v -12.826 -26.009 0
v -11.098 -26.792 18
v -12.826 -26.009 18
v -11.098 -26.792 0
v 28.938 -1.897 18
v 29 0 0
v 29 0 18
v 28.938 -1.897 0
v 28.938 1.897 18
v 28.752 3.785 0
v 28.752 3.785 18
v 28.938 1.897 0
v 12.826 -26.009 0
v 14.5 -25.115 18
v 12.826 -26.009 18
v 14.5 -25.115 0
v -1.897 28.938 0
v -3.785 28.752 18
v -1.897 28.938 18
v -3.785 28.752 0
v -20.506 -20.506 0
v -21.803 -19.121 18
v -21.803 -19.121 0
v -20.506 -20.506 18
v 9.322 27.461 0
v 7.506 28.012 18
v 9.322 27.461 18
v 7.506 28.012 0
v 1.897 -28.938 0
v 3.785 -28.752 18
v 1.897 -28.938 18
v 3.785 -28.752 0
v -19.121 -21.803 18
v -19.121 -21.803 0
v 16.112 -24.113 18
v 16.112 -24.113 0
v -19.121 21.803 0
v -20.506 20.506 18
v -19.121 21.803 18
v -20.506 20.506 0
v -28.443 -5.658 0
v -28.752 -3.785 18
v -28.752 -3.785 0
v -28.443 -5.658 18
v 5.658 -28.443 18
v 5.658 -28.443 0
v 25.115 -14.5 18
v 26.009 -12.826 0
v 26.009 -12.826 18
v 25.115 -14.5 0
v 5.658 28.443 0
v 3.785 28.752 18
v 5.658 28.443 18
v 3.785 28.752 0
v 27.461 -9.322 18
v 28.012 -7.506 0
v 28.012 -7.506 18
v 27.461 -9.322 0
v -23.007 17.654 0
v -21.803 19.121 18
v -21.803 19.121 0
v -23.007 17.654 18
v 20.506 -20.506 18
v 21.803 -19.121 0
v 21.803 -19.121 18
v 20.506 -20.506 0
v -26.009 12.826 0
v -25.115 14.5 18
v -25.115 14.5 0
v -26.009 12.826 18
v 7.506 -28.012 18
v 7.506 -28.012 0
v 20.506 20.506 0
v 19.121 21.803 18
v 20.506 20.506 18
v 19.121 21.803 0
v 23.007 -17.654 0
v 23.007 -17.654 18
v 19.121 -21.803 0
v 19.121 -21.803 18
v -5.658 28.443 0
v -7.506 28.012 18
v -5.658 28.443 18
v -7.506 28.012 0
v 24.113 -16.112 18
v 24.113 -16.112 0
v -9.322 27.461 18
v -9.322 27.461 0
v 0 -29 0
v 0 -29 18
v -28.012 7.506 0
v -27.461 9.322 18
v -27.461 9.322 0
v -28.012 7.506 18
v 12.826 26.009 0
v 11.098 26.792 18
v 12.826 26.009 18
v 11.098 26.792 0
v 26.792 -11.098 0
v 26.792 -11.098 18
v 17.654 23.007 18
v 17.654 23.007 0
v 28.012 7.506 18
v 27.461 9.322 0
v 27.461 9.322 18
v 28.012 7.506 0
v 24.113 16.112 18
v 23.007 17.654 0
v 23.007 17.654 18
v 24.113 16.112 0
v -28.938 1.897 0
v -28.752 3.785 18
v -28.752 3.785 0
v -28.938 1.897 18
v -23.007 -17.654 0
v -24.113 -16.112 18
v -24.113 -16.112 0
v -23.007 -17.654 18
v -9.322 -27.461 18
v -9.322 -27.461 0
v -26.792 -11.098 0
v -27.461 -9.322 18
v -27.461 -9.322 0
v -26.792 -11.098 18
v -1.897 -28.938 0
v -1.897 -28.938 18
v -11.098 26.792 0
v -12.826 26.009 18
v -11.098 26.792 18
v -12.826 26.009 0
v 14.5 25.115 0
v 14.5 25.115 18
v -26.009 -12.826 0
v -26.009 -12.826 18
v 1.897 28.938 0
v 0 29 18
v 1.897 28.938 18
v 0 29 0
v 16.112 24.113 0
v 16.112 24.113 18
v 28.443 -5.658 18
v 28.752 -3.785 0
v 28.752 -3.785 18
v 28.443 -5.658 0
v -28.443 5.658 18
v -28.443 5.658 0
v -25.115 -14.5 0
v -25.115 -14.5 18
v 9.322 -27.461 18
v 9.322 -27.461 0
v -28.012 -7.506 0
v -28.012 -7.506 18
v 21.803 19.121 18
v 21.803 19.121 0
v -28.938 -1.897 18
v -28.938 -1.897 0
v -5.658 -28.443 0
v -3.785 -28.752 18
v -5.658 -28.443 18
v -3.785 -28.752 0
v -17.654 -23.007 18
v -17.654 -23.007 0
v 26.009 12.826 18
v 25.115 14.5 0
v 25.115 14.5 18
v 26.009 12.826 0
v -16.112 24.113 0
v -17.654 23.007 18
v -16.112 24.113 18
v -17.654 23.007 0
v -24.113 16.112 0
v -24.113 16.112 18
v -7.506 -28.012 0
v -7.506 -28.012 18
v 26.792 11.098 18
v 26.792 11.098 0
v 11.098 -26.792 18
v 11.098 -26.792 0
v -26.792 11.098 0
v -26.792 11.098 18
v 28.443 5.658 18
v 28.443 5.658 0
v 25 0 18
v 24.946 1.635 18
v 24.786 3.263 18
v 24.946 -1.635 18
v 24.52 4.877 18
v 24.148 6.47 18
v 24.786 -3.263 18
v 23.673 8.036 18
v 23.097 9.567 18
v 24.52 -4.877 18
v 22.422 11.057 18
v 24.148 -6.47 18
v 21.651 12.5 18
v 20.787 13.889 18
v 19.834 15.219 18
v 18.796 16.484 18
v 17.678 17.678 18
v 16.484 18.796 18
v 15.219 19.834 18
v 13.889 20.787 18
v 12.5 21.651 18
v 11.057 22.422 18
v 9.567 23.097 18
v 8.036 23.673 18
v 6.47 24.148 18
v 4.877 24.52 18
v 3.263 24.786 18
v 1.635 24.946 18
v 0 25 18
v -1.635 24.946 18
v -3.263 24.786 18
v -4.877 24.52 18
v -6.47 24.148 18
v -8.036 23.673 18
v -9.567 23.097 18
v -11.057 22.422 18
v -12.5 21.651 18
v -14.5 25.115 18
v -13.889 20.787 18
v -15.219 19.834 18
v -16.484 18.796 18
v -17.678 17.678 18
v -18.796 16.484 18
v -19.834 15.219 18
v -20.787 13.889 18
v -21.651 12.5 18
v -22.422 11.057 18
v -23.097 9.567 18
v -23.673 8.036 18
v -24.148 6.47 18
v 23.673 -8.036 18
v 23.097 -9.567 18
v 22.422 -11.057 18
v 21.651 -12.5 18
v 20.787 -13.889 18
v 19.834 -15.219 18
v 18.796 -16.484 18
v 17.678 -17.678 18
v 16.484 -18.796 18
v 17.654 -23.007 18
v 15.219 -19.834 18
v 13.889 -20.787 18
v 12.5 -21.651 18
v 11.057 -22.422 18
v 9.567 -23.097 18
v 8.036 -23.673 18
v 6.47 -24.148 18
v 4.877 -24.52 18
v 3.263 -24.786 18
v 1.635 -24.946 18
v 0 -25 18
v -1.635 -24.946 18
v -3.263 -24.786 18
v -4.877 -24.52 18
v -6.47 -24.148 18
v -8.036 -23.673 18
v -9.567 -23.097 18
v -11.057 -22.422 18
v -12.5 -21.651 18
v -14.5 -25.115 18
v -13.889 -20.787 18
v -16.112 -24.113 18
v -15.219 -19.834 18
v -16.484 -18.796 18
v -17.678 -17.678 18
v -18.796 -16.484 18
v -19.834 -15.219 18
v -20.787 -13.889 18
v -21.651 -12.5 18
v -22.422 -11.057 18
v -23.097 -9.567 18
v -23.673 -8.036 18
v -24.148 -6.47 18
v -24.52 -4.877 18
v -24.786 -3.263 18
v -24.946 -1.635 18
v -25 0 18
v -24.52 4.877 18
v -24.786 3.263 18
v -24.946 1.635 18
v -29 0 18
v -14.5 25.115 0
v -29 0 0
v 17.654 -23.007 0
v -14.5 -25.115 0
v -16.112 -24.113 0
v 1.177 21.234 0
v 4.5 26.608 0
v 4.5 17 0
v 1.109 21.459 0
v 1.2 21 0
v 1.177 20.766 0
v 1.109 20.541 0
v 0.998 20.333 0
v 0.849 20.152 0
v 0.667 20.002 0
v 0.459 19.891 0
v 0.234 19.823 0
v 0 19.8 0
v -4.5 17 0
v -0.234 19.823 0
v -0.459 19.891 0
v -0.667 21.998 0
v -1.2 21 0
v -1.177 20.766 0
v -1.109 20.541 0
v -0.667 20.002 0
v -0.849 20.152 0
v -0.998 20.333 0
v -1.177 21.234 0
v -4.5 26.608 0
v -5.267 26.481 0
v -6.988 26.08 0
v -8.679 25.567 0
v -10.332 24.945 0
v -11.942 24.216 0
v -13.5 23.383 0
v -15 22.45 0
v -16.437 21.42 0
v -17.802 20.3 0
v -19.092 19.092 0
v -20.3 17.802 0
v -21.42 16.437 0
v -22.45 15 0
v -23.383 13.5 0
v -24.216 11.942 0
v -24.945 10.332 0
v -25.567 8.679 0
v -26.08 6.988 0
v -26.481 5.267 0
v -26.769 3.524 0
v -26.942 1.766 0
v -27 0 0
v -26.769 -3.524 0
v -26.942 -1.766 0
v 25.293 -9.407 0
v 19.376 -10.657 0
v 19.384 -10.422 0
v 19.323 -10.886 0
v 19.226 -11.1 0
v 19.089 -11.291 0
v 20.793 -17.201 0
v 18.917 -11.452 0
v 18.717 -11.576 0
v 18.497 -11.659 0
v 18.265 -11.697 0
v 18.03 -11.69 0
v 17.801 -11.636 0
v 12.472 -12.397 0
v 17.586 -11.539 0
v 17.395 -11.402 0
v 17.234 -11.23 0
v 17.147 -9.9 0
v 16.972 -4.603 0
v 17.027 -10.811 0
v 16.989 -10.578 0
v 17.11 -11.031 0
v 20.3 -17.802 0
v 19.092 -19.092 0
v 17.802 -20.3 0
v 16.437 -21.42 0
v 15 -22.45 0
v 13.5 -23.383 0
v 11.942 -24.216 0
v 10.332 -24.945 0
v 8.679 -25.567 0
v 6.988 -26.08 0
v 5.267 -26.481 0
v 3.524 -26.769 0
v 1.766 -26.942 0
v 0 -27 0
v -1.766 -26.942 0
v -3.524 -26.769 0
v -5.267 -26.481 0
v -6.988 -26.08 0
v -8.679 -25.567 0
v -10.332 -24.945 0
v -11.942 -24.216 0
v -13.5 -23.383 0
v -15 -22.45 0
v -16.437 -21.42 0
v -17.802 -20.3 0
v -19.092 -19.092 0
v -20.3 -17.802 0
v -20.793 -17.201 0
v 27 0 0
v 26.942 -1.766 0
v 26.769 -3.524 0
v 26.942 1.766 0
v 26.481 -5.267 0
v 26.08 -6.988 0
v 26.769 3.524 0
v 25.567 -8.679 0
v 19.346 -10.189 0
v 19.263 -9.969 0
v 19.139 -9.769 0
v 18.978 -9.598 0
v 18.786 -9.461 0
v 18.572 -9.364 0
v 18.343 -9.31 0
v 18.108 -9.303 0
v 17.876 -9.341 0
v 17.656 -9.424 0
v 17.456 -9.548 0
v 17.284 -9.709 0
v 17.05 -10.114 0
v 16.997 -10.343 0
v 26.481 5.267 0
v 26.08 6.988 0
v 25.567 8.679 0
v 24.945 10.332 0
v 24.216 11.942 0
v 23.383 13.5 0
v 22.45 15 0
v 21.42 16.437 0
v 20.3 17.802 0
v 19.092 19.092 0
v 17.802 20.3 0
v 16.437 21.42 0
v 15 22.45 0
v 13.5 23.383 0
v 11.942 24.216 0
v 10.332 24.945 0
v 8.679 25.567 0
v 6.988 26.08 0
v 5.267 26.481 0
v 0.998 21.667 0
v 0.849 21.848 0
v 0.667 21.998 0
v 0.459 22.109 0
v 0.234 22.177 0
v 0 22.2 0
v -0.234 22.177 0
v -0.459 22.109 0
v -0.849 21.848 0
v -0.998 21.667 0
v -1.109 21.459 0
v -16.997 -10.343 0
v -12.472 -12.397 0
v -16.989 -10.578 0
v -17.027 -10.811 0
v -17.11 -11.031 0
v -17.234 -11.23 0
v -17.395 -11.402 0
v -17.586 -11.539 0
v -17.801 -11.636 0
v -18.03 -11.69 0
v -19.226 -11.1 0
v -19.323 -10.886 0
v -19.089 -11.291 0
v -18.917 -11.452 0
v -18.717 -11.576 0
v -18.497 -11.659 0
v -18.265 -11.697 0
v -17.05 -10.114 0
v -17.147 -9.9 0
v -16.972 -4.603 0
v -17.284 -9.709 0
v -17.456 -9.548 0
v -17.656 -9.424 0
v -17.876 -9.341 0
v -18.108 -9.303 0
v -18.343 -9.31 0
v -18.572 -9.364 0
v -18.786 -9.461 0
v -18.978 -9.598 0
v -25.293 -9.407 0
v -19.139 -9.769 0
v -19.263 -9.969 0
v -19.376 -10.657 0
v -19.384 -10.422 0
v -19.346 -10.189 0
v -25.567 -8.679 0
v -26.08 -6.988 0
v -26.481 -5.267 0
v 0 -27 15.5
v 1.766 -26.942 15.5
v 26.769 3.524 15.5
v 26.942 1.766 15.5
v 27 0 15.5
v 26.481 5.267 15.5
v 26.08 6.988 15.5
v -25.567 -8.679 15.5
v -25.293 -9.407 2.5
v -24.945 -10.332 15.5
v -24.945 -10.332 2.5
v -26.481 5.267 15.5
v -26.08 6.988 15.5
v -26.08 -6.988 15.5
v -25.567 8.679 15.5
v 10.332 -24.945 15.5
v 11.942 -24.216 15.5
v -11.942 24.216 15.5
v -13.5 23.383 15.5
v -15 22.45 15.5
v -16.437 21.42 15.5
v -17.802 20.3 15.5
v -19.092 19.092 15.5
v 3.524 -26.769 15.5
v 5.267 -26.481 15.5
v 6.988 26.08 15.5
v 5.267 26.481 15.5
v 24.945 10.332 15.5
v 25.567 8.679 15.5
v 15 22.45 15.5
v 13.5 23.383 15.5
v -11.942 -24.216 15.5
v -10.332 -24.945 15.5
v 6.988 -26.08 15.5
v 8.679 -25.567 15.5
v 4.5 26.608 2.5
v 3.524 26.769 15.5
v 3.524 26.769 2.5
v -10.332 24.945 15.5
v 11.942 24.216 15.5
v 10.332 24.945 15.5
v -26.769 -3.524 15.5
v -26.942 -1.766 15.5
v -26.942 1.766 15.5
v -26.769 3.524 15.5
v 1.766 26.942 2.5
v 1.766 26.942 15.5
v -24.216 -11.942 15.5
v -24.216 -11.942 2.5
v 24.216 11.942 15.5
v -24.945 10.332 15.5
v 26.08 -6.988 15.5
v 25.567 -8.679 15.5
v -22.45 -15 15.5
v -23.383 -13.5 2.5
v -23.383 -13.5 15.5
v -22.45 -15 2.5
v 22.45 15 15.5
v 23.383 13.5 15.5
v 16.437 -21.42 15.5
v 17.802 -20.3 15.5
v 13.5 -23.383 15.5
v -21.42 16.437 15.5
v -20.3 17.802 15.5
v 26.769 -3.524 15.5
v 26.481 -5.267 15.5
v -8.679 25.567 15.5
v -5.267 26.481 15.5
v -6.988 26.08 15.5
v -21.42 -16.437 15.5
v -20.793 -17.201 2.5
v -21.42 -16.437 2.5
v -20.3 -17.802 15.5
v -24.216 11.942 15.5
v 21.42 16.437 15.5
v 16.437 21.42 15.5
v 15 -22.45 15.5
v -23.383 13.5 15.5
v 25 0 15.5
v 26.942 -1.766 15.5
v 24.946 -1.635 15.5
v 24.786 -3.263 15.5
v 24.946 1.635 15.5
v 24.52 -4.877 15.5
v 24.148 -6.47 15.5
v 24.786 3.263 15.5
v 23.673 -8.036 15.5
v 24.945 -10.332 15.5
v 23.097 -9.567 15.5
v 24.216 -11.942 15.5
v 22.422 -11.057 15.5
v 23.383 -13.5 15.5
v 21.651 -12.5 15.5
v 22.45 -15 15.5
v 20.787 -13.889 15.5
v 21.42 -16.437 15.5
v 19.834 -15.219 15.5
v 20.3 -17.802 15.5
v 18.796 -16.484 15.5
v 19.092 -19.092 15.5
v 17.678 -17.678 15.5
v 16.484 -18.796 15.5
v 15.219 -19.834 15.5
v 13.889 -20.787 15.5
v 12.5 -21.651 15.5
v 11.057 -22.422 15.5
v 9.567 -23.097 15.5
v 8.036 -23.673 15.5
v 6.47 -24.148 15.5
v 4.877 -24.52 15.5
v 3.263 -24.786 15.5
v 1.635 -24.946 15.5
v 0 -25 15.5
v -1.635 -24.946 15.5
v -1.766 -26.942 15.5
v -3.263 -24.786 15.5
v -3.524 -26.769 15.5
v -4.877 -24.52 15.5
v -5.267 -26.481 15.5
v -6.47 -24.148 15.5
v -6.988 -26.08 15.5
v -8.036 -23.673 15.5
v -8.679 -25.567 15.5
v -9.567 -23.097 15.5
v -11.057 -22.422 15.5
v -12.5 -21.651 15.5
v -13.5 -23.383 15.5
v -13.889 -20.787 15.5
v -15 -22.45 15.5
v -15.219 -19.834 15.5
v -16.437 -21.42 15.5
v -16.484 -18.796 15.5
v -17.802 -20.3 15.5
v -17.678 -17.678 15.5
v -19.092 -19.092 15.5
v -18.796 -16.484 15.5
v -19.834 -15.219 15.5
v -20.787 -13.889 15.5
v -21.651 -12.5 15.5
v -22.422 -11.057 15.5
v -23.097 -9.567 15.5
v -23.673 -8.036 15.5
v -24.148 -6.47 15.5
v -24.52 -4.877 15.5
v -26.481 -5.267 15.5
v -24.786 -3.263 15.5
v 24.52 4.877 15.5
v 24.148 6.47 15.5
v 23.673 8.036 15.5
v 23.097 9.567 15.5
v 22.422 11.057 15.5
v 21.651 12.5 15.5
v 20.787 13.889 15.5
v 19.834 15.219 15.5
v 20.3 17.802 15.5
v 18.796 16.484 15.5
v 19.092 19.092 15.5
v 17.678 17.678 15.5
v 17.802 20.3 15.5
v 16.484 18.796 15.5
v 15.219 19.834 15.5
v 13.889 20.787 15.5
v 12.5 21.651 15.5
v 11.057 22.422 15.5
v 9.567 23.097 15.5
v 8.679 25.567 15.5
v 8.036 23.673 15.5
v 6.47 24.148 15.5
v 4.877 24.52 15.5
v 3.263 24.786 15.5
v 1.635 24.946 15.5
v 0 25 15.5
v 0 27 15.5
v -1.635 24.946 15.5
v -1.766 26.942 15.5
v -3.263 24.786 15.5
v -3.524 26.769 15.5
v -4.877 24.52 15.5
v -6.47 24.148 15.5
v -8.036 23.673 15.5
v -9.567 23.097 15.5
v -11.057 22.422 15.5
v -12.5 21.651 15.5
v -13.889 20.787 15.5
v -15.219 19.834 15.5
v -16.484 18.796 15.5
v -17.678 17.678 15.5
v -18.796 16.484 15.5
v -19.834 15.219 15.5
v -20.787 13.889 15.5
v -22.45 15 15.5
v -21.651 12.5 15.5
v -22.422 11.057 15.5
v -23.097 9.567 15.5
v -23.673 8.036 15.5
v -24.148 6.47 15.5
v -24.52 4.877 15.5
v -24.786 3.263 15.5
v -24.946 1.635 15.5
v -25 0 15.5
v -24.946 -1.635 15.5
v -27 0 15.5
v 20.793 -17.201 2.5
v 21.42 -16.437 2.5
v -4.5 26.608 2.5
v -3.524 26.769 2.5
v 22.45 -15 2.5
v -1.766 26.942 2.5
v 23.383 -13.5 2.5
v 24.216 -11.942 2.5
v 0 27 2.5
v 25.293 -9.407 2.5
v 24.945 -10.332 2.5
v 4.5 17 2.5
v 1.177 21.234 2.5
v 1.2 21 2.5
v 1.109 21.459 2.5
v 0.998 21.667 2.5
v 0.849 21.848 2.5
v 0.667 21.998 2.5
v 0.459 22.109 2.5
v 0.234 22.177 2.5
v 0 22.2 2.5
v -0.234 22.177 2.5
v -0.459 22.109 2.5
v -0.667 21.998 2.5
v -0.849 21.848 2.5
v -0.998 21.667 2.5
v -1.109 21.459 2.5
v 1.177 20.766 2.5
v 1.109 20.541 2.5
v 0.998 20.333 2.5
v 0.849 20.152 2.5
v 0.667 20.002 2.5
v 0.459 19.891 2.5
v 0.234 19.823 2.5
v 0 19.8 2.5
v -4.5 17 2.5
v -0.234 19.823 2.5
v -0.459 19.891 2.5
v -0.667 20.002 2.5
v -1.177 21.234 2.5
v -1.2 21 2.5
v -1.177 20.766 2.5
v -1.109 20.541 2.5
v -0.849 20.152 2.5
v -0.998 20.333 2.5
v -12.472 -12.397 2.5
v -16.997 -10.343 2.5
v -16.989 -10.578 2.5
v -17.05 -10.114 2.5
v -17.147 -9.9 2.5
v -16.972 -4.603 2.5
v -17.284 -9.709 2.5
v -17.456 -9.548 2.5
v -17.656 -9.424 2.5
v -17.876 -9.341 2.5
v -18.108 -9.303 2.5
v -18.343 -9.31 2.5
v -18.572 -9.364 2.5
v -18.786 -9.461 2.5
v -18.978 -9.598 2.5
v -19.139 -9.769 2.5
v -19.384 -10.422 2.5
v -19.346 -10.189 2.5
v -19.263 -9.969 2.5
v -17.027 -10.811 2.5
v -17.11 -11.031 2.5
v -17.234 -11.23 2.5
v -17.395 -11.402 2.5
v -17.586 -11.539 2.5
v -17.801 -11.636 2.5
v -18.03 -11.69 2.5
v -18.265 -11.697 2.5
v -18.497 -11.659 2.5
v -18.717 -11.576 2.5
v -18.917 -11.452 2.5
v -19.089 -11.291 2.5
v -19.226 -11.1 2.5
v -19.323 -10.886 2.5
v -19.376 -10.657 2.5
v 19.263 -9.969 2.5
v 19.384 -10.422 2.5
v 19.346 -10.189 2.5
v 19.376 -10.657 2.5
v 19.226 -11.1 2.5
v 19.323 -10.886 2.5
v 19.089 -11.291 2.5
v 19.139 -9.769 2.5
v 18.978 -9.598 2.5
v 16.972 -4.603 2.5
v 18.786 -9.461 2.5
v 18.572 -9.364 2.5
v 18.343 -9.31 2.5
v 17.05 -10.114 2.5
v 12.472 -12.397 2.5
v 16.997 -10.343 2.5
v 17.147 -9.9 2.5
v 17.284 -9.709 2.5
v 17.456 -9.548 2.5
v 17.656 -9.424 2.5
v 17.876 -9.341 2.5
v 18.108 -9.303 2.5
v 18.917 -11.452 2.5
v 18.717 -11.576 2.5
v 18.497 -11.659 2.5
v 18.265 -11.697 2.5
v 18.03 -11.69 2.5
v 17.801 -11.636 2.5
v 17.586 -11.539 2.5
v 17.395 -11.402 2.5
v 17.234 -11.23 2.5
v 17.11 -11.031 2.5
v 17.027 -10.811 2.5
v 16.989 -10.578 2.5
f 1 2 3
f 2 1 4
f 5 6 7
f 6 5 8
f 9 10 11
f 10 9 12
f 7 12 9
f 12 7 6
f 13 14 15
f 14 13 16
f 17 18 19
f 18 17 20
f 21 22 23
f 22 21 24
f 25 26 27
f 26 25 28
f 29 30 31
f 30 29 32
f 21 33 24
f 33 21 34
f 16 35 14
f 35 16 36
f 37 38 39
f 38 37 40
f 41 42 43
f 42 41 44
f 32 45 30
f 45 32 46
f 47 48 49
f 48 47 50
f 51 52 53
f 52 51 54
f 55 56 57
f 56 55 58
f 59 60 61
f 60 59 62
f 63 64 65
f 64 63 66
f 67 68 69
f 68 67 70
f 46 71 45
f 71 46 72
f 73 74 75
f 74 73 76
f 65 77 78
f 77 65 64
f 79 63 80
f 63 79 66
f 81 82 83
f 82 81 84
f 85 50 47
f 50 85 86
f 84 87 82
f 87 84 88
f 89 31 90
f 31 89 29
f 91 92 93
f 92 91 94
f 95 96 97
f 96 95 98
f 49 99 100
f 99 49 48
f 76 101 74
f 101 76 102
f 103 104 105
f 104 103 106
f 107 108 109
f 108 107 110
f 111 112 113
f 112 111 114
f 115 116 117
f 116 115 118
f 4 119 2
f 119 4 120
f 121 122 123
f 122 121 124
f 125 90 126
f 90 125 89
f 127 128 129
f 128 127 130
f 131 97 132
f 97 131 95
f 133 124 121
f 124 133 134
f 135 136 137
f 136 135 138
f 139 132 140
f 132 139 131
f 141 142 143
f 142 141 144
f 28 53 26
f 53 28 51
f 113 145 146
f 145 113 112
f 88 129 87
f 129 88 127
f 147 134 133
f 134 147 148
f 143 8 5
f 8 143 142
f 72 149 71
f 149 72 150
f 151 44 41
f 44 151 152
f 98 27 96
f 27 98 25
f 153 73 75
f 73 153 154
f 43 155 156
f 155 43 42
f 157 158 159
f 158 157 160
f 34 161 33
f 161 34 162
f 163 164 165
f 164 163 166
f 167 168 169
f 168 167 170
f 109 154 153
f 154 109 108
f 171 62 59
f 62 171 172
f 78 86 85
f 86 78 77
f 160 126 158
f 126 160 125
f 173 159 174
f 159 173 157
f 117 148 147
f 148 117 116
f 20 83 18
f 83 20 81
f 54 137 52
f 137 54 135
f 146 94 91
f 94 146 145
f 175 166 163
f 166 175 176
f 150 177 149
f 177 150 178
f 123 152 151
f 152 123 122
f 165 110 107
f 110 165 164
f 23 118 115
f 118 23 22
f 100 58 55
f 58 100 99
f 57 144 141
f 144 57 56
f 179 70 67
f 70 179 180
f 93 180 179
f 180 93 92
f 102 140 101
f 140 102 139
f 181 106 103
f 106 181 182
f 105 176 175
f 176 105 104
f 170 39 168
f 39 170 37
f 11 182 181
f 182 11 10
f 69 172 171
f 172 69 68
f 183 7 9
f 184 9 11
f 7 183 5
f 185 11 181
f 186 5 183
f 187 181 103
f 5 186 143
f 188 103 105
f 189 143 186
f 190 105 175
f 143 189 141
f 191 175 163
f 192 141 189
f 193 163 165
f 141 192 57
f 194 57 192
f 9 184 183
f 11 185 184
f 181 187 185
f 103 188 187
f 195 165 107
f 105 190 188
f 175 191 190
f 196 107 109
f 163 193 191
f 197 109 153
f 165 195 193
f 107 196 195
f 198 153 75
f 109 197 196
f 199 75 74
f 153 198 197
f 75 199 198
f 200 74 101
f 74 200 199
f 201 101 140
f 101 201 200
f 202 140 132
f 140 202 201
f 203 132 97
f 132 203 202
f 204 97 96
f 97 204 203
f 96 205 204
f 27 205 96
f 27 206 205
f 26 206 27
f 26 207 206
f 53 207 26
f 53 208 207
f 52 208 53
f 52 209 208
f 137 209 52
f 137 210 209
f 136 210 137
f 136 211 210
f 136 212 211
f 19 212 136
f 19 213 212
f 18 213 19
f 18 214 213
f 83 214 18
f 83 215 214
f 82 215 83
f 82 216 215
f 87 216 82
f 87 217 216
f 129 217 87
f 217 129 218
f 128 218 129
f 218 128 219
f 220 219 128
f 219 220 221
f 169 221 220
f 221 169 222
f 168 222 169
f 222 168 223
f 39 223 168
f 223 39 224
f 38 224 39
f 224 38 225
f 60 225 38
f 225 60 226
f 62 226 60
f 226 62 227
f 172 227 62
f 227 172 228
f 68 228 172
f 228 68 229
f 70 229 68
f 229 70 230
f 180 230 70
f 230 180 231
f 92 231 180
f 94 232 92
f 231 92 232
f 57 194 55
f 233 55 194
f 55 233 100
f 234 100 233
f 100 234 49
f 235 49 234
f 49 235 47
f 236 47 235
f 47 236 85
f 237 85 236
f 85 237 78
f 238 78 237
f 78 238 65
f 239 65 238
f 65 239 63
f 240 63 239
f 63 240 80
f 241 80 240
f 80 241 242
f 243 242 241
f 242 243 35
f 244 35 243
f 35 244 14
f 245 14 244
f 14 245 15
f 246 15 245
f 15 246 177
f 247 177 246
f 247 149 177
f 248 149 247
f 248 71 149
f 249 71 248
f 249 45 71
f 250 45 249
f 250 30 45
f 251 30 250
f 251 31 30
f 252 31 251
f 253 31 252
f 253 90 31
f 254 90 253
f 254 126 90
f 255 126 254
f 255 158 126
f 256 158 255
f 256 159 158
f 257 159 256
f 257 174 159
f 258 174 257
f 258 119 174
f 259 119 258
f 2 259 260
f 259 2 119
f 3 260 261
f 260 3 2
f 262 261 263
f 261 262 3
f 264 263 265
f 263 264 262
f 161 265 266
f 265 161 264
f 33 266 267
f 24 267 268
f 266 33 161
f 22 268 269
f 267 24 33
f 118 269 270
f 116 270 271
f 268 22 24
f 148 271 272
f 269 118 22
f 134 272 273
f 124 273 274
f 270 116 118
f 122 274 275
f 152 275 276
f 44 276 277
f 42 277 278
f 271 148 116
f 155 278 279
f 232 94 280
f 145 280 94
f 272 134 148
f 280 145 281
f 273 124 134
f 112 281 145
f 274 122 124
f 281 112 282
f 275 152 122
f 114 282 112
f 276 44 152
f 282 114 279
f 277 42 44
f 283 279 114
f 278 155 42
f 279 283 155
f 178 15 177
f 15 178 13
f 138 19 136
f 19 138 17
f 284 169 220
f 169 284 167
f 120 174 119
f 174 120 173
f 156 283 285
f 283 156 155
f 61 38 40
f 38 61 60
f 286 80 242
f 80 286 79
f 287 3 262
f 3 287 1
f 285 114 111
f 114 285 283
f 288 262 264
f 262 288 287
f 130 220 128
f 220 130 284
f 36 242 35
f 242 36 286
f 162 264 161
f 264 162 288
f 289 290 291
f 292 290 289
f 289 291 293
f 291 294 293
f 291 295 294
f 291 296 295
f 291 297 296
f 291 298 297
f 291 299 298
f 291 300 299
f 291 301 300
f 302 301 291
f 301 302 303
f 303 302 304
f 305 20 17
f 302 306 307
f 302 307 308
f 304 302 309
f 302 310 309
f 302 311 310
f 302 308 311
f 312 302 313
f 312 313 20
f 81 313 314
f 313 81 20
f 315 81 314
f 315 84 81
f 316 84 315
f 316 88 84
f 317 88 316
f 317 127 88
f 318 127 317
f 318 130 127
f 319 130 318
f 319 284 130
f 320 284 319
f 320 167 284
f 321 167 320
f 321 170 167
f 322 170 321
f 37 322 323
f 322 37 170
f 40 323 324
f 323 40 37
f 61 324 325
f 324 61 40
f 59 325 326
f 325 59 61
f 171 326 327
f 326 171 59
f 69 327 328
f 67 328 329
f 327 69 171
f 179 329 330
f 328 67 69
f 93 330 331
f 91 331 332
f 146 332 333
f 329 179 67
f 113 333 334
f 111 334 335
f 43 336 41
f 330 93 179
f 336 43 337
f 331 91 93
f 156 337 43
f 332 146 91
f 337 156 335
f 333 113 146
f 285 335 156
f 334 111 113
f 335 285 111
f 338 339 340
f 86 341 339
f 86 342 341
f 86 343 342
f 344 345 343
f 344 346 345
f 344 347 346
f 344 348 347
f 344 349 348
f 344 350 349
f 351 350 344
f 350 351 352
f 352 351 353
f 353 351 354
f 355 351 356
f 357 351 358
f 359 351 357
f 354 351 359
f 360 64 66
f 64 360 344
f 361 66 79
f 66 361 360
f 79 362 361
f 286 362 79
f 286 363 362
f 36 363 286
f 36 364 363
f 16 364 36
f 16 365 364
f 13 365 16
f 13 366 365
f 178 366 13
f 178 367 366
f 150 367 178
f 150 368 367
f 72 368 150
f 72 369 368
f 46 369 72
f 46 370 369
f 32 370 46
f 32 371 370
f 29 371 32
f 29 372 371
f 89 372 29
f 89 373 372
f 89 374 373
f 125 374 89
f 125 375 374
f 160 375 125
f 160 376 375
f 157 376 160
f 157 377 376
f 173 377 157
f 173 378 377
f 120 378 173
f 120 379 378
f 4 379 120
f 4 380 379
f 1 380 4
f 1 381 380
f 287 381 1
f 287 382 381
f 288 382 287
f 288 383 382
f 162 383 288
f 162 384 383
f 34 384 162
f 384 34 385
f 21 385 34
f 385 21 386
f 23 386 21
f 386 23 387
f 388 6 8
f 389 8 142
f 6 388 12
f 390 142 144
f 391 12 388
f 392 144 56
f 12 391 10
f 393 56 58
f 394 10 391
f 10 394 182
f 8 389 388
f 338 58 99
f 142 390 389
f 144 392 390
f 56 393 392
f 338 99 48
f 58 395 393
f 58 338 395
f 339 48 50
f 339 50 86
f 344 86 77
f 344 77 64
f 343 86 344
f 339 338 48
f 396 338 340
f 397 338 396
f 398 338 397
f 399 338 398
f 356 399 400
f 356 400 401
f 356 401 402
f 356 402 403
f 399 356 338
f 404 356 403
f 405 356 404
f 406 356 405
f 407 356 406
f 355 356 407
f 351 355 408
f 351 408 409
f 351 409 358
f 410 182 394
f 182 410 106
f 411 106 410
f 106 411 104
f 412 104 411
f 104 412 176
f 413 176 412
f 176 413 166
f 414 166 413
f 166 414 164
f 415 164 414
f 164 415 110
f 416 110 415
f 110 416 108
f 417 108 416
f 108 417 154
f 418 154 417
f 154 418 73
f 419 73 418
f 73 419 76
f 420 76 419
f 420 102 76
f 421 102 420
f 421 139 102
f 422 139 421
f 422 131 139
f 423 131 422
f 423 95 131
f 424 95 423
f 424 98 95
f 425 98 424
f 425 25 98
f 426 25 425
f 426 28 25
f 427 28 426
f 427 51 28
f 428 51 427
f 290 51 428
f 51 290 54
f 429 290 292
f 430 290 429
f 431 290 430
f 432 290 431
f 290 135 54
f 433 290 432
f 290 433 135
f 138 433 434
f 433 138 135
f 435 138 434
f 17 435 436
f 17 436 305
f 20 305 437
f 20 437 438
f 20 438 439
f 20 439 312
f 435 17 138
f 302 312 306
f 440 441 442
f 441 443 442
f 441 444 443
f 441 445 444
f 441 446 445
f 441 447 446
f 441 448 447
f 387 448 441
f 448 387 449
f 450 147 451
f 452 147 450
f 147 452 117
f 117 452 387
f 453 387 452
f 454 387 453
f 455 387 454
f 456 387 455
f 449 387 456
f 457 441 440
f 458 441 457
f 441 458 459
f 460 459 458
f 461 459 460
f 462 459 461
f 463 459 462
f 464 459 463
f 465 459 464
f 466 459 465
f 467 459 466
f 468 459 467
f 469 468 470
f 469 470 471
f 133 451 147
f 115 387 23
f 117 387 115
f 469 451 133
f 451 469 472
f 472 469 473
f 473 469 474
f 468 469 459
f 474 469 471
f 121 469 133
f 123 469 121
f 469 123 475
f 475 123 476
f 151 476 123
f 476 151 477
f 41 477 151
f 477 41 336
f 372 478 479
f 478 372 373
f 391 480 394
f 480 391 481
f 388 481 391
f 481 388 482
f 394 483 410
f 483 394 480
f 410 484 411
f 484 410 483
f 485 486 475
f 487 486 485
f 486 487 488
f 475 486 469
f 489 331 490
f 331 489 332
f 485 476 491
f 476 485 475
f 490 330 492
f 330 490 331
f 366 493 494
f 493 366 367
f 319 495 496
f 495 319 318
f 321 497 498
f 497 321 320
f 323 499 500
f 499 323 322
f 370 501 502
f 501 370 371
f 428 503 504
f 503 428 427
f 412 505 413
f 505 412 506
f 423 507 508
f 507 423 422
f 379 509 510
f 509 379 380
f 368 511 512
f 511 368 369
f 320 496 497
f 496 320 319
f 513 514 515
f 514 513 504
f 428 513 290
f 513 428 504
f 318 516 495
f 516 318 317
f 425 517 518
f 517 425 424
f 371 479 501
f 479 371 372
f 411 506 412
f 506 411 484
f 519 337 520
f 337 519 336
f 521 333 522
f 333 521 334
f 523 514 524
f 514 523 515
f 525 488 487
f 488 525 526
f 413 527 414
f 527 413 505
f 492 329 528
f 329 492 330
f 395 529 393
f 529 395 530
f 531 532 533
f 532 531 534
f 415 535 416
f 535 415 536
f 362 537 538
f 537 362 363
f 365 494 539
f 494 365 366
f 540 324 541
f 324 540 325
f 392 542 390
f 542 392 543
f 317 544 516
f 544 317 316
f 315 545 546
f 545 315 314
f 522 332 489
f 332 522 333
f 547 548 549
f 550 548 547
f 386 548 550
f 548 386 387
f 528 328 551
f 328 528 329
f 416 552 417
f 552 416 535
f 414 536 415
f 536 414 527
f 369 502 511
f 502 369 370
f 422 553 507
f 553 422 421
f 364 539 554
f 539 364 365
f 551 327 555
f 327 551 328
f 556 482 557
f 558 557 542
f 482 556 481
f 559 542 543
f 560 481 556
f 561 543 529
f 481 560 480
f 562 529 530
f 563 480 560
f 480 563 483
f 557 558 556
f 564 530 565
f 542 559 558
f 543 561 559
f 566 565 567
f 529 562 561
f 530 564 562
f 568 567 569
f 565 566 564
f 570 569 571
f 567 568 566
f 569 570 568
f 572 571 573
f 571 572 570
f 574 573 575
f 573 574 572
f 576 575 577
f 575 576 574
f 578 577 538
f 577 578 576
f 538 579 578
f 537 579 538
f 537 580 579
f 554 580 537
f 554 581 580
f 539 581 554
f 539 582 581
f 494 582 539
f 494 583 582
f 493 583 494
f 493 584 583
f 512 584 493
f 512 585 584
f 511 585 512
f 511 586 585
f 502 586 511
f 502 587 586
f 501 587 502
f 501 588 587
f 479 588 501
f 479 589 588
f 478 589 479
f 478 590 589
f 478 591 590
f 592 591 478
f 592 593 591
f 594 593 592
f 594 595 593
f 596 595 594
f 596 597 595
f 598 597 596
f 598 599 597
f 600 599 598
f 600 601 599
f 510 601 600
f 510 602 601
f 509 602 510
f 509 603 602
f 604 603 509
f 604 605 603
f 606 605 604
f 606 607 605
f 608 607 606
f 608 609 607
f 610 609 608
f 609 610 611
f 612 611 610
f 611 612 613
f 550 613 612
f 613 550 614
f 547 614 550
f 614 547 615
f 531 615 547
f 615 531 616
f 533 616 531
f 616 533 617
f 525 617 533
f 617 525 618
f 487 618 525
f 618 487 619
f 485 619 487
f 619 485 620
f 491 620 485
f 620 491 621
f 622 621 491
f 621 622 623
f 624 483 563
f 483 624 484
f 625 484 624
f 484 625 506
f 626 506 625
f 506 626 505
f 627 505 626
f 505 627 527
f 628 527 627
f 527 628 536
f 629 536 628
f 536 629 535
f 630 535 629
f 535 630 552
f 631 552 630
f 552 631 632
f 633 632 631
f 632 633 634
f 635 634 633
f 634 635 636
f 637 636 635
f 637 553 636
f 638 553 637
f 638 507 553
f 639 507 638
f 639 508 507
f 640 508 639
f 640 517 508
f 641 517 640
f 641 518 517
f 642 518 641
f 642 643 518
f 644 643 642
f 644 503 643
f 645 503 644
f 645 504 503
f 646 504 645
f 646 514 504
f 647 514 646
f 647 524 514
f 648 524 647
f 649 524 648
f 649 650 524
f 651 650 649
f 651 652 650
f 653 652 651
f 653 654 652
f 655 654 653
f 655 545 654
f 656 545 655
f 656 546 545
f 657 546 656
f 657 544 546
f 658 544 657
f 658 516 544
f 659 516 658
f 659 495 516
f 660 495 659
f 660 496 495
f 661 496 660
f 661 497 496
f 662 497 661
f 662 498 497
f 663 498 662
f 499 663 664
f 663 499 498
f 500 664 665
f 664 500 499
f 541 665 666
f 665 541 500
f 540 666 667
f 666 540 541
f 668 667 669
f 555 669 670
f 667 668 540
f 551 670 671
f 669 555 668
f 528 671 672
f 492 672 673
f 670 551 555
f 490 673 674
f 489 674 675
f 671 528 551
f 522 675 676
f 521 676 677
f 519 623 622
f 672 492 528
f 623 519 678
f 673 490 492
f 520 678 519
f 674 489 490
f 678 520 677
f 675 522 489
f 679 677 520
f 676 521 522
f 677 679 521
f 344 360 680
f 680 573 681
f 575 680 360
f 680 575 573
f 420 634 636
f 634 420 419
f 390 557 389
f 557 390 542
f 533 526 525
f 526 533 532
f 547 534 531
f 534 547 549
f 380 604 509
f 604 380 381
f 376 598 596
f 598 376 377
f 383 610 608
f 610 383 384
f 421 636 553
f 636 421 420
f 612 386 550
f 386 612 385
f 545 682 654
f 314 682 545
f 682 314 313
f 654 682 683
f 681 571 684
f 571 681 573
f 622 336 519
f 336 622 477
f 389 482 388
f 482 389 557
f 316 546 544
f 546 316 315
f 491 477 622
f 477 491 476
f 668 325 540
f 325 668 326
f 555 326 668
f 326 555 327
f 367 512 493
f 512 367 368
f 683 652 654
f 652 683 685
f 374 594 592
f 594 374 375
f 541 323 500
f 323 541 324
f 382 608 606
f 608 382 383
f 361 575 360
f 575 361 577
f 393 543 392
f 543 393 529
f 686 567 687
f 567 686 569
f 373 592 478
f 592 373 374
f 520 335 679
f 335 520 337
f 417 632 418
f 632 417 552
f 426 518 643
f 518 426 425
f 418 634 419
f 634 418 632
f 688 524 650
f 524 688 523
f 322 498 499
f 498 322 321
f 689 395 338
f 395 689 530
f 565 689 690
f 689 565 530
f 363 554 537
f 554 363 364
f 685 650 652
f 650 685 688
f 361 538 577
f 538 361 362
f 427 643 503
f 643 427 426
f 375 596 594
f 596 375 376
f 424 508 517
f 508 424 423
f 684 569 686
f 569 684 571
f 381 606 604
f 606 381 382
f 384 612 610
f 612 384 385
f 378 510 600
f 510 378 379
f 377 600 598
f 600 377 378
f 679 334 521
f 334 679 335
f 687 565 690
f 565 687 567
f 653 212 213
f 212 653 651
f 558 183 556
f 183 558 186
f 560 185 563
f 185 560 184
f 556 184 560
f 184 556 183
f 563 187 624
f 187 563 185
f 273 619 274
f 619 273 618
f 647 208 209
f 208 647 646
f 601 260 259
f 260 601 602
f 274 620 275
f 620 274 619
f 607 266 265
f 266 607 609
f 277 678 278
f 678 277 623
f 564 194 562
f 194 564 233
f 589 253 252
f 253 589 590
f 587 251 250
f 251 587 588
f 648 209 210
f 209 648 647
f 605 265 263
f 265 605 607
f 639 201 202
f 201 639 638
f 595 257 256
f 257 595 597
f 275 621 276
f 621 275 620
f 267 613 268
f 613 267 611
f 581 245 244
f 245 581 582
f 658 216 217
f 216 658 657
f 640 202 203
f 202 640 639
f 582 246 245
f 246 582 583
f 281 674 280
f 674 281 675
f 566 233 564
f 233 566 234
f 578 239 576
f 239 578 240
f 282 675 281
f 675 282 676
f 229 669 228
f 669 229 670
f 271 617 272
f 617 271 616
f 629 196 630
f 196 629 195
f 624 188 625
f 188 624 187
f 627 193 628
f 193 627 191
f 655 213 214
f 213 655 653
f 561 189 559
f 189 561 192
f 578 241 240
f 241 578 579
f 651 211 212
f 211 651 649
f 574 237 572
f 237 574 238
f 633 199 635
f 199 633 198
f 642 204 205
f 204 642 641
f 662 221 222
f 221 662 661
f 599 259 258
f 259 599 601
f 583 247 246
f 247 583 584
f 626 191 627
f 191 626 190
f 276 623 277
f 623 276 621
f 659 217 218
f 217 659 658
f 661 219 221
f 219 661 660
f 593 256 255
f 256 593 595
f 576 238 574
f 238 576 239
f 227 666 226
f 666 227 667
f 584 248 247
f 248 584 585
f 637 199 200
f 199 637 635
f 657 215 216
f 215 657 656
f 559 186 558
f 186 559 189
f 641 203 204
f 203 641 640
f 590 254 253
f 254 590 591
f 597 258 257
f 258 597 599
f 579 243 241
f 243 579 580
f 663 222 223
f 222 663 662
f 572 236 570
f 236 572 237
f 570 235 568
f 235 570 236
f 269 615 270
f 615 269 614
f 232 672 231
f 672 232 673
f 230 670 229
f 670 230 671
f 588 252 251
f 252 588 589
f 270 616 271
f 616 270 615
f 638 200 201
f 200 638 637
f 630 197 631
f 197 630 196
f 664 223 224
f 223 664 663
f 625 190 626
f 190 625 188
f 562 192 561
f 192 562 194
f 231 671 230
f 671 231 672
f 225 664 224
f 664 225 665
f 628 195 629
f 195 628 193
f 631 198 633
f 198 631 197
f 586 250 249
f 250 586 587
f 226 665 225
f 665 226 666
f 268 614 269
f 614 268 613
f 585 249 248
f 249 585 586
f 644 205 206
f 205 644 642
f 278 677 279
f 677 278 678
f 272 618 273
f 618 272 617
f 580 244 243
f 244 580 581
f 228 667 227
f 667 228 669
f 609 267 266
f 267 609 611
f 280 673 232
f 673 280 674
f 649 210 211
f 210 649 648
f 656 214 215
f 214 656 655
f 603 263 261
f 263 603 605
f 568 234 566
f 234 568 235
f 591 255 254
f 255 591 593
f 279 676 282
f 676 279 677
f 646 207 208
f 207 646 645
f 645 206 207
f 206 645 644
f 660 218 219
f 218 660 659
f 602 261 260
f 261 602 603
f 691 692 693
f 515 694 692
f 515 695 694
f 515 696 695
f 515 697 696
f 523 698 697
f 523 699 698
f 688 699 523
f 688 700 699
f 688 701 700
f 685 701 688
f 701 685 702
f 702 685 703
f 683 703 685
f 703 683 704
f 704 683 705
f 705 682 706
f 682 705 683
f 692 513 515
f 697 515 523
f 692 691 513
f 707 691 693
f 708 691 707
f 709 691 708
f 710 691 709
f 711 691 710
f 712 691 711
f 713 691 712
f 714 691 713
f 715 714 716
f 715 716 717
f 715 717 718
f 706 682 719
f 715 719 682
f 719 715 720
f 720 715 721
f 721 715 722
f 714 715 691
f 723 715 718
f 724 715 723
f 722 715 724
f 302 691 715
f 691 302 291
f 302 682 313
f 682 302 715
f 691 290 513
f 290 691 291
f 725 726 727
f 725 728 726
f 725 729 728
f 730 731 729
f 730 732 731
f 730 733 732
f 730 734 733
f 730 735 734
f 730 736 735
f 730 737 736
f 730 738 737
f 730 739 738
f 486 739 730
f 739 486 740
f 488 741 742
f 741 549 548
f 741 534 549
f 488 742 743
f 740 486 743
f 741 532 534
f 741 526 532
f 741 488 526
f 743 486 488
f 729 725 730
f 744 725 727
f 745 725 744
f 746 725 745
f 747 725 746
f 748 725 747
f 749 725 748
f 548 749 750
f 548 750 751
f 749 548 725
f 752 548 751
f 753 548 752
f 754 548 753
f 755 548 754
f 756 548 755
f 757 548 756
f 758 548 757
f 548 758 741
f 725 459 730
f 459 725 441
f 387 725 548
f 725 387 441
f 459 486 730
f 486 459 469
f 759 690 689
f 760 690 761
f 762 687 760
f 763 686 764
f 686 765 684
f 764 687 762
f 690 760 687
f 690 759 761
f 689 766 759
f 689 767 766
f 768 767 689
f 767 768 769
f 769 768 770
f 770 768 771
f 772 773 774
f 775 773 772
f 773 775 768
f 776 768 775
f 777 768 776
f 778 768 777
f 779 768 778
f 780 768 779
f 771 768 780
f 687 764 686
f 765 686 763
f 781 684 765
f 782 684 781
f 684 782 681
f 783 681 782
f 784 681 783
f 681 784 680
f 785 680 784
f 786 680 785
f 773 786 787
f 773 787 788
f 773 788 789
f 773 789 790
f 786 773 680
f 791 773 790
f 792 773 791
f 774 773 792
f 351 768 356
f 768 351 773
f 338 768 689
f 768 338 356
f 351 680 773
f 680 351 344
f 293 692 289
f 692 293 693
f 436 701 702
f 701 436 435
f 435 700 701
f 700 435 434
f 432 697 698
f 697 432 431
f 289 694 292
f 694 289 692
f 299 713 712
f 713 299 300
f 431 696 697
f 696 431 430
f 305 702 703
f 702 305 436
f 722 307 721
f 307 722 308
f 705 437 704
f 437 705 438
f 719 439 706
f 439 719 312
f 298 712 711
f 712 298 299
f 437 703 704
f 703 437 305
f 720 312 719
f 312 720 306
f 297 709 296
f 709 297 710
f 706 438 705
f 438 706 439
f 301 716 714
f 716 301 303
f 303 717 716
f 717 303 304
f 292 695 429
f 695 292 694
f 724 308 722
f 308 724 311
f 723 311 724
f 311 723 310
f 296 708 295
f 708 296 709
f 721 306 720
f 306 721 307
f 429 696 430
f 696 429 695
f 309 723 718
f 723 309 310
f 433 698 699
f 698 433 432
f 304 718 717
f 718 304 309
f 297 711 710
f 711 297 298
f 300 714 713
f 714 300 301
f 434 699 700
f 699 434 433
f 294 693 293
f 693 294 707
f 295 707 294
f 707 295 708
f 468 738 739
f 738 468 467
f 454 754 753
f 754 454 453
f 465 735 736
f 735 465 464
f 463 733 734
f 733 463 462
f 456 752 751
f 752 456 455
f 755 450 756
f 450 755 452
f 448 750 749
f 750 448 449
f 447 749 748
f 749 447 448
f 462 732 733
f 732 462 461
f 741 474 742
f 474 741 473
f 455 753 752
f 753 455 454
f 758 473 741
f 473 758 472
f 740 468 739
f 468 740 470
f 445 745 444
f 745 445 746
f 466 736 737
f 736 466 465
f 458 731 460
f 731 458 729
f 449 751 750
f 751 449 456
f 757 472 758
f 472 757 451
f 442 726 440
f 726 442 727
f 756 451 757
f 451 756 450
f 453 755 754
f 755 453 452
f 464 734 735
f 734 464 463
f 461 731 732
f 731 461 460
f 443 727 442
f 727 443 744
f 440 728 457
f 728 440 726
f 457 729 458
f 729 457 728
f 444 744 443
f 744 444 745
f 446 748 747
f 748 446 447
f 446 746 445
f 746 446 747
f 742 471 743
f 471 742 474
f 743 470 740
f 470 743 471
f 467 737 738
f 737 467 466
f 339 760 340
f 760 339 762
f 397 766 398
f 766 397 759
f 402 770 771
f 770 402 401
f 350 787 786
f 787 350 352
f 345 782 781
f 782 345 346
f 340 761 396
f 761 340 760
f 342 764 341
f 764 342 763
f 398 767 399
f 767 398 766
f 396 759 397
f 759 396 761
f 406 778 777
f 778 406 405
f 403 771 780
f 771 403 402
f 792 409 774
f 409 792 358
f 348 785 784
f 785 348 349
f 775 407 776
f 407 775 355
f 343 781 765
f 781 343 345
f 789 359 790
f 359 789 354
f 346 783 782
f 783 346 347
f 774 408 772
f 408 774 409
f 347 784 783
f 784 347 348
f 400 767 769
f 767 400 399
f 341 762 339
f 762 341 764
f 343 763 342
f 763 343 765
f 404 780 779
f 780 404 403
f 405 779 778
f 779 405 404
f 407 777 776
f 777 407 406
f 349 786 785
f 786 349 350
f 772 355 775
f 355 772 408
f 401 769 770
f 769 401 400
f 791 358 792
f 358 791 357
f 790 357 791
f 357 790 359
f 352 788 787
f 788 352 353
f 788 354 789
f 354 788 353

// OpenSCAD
// Pedestal: fixed 58 mm drum that sits on the front plate and hides the motor.
// The ring turns on top of it with a 0.8 mm gap.
// It is held by three M2 self-tapping screws through tabs at its foot (pilot holes in the front plate).
// Assembly order: screw the pedestal to the plate FIRST (screwdriver goes in through the top opening),
// then drop the motor in, then the hub, ring and carrier.
include <params.scad>

ped_wall   = 2.0;
open_d     = pedestal_od - 2 * ped_wall - 4;     // top opening dia 50: hub walls (r 24.3) pass with 0.7 mm to spare
tab_r      = 21;                                 // screw circle radius, inside the opening so a driver reaches it
tab_angles = [90, 210, 330];                  // the motor lead leaves at 30 degrees, between the tabs

module pedestal() {
    difference() {
        union() {
            difference() {
                cylinder(d = pedestal_od, h = pedestal_h);
                translate([0, 0, -1]) cylinder(d = pedestal_od - 2 * ped_wall, h = pedestal_h - 2.5 + 1);   // cavity for the motor
                translate([0, 0, -1]) cylinder(d = open_d, h = pedestal_h + 2);                           // top opening
            }
            // three foot tabs inside the cavity, 2.5 mm thick, from r=17 out to the wall
            for (a = tab_angles)
                rotate([0, 0, a]) translate([17, -4.5, 0]) cube([pedestal_od / 2 - ped_wall - 16.5, 9, 2.5]);
        }
        for (a = tab_angles)
            rotate([0, 0, a]) translate([tab_r, 0, -1]) cylinder(d = 2.4, h = 5, $fn = 32);   // M2 clearance, screw heads sit on the tab
    }
}

pedestal();
